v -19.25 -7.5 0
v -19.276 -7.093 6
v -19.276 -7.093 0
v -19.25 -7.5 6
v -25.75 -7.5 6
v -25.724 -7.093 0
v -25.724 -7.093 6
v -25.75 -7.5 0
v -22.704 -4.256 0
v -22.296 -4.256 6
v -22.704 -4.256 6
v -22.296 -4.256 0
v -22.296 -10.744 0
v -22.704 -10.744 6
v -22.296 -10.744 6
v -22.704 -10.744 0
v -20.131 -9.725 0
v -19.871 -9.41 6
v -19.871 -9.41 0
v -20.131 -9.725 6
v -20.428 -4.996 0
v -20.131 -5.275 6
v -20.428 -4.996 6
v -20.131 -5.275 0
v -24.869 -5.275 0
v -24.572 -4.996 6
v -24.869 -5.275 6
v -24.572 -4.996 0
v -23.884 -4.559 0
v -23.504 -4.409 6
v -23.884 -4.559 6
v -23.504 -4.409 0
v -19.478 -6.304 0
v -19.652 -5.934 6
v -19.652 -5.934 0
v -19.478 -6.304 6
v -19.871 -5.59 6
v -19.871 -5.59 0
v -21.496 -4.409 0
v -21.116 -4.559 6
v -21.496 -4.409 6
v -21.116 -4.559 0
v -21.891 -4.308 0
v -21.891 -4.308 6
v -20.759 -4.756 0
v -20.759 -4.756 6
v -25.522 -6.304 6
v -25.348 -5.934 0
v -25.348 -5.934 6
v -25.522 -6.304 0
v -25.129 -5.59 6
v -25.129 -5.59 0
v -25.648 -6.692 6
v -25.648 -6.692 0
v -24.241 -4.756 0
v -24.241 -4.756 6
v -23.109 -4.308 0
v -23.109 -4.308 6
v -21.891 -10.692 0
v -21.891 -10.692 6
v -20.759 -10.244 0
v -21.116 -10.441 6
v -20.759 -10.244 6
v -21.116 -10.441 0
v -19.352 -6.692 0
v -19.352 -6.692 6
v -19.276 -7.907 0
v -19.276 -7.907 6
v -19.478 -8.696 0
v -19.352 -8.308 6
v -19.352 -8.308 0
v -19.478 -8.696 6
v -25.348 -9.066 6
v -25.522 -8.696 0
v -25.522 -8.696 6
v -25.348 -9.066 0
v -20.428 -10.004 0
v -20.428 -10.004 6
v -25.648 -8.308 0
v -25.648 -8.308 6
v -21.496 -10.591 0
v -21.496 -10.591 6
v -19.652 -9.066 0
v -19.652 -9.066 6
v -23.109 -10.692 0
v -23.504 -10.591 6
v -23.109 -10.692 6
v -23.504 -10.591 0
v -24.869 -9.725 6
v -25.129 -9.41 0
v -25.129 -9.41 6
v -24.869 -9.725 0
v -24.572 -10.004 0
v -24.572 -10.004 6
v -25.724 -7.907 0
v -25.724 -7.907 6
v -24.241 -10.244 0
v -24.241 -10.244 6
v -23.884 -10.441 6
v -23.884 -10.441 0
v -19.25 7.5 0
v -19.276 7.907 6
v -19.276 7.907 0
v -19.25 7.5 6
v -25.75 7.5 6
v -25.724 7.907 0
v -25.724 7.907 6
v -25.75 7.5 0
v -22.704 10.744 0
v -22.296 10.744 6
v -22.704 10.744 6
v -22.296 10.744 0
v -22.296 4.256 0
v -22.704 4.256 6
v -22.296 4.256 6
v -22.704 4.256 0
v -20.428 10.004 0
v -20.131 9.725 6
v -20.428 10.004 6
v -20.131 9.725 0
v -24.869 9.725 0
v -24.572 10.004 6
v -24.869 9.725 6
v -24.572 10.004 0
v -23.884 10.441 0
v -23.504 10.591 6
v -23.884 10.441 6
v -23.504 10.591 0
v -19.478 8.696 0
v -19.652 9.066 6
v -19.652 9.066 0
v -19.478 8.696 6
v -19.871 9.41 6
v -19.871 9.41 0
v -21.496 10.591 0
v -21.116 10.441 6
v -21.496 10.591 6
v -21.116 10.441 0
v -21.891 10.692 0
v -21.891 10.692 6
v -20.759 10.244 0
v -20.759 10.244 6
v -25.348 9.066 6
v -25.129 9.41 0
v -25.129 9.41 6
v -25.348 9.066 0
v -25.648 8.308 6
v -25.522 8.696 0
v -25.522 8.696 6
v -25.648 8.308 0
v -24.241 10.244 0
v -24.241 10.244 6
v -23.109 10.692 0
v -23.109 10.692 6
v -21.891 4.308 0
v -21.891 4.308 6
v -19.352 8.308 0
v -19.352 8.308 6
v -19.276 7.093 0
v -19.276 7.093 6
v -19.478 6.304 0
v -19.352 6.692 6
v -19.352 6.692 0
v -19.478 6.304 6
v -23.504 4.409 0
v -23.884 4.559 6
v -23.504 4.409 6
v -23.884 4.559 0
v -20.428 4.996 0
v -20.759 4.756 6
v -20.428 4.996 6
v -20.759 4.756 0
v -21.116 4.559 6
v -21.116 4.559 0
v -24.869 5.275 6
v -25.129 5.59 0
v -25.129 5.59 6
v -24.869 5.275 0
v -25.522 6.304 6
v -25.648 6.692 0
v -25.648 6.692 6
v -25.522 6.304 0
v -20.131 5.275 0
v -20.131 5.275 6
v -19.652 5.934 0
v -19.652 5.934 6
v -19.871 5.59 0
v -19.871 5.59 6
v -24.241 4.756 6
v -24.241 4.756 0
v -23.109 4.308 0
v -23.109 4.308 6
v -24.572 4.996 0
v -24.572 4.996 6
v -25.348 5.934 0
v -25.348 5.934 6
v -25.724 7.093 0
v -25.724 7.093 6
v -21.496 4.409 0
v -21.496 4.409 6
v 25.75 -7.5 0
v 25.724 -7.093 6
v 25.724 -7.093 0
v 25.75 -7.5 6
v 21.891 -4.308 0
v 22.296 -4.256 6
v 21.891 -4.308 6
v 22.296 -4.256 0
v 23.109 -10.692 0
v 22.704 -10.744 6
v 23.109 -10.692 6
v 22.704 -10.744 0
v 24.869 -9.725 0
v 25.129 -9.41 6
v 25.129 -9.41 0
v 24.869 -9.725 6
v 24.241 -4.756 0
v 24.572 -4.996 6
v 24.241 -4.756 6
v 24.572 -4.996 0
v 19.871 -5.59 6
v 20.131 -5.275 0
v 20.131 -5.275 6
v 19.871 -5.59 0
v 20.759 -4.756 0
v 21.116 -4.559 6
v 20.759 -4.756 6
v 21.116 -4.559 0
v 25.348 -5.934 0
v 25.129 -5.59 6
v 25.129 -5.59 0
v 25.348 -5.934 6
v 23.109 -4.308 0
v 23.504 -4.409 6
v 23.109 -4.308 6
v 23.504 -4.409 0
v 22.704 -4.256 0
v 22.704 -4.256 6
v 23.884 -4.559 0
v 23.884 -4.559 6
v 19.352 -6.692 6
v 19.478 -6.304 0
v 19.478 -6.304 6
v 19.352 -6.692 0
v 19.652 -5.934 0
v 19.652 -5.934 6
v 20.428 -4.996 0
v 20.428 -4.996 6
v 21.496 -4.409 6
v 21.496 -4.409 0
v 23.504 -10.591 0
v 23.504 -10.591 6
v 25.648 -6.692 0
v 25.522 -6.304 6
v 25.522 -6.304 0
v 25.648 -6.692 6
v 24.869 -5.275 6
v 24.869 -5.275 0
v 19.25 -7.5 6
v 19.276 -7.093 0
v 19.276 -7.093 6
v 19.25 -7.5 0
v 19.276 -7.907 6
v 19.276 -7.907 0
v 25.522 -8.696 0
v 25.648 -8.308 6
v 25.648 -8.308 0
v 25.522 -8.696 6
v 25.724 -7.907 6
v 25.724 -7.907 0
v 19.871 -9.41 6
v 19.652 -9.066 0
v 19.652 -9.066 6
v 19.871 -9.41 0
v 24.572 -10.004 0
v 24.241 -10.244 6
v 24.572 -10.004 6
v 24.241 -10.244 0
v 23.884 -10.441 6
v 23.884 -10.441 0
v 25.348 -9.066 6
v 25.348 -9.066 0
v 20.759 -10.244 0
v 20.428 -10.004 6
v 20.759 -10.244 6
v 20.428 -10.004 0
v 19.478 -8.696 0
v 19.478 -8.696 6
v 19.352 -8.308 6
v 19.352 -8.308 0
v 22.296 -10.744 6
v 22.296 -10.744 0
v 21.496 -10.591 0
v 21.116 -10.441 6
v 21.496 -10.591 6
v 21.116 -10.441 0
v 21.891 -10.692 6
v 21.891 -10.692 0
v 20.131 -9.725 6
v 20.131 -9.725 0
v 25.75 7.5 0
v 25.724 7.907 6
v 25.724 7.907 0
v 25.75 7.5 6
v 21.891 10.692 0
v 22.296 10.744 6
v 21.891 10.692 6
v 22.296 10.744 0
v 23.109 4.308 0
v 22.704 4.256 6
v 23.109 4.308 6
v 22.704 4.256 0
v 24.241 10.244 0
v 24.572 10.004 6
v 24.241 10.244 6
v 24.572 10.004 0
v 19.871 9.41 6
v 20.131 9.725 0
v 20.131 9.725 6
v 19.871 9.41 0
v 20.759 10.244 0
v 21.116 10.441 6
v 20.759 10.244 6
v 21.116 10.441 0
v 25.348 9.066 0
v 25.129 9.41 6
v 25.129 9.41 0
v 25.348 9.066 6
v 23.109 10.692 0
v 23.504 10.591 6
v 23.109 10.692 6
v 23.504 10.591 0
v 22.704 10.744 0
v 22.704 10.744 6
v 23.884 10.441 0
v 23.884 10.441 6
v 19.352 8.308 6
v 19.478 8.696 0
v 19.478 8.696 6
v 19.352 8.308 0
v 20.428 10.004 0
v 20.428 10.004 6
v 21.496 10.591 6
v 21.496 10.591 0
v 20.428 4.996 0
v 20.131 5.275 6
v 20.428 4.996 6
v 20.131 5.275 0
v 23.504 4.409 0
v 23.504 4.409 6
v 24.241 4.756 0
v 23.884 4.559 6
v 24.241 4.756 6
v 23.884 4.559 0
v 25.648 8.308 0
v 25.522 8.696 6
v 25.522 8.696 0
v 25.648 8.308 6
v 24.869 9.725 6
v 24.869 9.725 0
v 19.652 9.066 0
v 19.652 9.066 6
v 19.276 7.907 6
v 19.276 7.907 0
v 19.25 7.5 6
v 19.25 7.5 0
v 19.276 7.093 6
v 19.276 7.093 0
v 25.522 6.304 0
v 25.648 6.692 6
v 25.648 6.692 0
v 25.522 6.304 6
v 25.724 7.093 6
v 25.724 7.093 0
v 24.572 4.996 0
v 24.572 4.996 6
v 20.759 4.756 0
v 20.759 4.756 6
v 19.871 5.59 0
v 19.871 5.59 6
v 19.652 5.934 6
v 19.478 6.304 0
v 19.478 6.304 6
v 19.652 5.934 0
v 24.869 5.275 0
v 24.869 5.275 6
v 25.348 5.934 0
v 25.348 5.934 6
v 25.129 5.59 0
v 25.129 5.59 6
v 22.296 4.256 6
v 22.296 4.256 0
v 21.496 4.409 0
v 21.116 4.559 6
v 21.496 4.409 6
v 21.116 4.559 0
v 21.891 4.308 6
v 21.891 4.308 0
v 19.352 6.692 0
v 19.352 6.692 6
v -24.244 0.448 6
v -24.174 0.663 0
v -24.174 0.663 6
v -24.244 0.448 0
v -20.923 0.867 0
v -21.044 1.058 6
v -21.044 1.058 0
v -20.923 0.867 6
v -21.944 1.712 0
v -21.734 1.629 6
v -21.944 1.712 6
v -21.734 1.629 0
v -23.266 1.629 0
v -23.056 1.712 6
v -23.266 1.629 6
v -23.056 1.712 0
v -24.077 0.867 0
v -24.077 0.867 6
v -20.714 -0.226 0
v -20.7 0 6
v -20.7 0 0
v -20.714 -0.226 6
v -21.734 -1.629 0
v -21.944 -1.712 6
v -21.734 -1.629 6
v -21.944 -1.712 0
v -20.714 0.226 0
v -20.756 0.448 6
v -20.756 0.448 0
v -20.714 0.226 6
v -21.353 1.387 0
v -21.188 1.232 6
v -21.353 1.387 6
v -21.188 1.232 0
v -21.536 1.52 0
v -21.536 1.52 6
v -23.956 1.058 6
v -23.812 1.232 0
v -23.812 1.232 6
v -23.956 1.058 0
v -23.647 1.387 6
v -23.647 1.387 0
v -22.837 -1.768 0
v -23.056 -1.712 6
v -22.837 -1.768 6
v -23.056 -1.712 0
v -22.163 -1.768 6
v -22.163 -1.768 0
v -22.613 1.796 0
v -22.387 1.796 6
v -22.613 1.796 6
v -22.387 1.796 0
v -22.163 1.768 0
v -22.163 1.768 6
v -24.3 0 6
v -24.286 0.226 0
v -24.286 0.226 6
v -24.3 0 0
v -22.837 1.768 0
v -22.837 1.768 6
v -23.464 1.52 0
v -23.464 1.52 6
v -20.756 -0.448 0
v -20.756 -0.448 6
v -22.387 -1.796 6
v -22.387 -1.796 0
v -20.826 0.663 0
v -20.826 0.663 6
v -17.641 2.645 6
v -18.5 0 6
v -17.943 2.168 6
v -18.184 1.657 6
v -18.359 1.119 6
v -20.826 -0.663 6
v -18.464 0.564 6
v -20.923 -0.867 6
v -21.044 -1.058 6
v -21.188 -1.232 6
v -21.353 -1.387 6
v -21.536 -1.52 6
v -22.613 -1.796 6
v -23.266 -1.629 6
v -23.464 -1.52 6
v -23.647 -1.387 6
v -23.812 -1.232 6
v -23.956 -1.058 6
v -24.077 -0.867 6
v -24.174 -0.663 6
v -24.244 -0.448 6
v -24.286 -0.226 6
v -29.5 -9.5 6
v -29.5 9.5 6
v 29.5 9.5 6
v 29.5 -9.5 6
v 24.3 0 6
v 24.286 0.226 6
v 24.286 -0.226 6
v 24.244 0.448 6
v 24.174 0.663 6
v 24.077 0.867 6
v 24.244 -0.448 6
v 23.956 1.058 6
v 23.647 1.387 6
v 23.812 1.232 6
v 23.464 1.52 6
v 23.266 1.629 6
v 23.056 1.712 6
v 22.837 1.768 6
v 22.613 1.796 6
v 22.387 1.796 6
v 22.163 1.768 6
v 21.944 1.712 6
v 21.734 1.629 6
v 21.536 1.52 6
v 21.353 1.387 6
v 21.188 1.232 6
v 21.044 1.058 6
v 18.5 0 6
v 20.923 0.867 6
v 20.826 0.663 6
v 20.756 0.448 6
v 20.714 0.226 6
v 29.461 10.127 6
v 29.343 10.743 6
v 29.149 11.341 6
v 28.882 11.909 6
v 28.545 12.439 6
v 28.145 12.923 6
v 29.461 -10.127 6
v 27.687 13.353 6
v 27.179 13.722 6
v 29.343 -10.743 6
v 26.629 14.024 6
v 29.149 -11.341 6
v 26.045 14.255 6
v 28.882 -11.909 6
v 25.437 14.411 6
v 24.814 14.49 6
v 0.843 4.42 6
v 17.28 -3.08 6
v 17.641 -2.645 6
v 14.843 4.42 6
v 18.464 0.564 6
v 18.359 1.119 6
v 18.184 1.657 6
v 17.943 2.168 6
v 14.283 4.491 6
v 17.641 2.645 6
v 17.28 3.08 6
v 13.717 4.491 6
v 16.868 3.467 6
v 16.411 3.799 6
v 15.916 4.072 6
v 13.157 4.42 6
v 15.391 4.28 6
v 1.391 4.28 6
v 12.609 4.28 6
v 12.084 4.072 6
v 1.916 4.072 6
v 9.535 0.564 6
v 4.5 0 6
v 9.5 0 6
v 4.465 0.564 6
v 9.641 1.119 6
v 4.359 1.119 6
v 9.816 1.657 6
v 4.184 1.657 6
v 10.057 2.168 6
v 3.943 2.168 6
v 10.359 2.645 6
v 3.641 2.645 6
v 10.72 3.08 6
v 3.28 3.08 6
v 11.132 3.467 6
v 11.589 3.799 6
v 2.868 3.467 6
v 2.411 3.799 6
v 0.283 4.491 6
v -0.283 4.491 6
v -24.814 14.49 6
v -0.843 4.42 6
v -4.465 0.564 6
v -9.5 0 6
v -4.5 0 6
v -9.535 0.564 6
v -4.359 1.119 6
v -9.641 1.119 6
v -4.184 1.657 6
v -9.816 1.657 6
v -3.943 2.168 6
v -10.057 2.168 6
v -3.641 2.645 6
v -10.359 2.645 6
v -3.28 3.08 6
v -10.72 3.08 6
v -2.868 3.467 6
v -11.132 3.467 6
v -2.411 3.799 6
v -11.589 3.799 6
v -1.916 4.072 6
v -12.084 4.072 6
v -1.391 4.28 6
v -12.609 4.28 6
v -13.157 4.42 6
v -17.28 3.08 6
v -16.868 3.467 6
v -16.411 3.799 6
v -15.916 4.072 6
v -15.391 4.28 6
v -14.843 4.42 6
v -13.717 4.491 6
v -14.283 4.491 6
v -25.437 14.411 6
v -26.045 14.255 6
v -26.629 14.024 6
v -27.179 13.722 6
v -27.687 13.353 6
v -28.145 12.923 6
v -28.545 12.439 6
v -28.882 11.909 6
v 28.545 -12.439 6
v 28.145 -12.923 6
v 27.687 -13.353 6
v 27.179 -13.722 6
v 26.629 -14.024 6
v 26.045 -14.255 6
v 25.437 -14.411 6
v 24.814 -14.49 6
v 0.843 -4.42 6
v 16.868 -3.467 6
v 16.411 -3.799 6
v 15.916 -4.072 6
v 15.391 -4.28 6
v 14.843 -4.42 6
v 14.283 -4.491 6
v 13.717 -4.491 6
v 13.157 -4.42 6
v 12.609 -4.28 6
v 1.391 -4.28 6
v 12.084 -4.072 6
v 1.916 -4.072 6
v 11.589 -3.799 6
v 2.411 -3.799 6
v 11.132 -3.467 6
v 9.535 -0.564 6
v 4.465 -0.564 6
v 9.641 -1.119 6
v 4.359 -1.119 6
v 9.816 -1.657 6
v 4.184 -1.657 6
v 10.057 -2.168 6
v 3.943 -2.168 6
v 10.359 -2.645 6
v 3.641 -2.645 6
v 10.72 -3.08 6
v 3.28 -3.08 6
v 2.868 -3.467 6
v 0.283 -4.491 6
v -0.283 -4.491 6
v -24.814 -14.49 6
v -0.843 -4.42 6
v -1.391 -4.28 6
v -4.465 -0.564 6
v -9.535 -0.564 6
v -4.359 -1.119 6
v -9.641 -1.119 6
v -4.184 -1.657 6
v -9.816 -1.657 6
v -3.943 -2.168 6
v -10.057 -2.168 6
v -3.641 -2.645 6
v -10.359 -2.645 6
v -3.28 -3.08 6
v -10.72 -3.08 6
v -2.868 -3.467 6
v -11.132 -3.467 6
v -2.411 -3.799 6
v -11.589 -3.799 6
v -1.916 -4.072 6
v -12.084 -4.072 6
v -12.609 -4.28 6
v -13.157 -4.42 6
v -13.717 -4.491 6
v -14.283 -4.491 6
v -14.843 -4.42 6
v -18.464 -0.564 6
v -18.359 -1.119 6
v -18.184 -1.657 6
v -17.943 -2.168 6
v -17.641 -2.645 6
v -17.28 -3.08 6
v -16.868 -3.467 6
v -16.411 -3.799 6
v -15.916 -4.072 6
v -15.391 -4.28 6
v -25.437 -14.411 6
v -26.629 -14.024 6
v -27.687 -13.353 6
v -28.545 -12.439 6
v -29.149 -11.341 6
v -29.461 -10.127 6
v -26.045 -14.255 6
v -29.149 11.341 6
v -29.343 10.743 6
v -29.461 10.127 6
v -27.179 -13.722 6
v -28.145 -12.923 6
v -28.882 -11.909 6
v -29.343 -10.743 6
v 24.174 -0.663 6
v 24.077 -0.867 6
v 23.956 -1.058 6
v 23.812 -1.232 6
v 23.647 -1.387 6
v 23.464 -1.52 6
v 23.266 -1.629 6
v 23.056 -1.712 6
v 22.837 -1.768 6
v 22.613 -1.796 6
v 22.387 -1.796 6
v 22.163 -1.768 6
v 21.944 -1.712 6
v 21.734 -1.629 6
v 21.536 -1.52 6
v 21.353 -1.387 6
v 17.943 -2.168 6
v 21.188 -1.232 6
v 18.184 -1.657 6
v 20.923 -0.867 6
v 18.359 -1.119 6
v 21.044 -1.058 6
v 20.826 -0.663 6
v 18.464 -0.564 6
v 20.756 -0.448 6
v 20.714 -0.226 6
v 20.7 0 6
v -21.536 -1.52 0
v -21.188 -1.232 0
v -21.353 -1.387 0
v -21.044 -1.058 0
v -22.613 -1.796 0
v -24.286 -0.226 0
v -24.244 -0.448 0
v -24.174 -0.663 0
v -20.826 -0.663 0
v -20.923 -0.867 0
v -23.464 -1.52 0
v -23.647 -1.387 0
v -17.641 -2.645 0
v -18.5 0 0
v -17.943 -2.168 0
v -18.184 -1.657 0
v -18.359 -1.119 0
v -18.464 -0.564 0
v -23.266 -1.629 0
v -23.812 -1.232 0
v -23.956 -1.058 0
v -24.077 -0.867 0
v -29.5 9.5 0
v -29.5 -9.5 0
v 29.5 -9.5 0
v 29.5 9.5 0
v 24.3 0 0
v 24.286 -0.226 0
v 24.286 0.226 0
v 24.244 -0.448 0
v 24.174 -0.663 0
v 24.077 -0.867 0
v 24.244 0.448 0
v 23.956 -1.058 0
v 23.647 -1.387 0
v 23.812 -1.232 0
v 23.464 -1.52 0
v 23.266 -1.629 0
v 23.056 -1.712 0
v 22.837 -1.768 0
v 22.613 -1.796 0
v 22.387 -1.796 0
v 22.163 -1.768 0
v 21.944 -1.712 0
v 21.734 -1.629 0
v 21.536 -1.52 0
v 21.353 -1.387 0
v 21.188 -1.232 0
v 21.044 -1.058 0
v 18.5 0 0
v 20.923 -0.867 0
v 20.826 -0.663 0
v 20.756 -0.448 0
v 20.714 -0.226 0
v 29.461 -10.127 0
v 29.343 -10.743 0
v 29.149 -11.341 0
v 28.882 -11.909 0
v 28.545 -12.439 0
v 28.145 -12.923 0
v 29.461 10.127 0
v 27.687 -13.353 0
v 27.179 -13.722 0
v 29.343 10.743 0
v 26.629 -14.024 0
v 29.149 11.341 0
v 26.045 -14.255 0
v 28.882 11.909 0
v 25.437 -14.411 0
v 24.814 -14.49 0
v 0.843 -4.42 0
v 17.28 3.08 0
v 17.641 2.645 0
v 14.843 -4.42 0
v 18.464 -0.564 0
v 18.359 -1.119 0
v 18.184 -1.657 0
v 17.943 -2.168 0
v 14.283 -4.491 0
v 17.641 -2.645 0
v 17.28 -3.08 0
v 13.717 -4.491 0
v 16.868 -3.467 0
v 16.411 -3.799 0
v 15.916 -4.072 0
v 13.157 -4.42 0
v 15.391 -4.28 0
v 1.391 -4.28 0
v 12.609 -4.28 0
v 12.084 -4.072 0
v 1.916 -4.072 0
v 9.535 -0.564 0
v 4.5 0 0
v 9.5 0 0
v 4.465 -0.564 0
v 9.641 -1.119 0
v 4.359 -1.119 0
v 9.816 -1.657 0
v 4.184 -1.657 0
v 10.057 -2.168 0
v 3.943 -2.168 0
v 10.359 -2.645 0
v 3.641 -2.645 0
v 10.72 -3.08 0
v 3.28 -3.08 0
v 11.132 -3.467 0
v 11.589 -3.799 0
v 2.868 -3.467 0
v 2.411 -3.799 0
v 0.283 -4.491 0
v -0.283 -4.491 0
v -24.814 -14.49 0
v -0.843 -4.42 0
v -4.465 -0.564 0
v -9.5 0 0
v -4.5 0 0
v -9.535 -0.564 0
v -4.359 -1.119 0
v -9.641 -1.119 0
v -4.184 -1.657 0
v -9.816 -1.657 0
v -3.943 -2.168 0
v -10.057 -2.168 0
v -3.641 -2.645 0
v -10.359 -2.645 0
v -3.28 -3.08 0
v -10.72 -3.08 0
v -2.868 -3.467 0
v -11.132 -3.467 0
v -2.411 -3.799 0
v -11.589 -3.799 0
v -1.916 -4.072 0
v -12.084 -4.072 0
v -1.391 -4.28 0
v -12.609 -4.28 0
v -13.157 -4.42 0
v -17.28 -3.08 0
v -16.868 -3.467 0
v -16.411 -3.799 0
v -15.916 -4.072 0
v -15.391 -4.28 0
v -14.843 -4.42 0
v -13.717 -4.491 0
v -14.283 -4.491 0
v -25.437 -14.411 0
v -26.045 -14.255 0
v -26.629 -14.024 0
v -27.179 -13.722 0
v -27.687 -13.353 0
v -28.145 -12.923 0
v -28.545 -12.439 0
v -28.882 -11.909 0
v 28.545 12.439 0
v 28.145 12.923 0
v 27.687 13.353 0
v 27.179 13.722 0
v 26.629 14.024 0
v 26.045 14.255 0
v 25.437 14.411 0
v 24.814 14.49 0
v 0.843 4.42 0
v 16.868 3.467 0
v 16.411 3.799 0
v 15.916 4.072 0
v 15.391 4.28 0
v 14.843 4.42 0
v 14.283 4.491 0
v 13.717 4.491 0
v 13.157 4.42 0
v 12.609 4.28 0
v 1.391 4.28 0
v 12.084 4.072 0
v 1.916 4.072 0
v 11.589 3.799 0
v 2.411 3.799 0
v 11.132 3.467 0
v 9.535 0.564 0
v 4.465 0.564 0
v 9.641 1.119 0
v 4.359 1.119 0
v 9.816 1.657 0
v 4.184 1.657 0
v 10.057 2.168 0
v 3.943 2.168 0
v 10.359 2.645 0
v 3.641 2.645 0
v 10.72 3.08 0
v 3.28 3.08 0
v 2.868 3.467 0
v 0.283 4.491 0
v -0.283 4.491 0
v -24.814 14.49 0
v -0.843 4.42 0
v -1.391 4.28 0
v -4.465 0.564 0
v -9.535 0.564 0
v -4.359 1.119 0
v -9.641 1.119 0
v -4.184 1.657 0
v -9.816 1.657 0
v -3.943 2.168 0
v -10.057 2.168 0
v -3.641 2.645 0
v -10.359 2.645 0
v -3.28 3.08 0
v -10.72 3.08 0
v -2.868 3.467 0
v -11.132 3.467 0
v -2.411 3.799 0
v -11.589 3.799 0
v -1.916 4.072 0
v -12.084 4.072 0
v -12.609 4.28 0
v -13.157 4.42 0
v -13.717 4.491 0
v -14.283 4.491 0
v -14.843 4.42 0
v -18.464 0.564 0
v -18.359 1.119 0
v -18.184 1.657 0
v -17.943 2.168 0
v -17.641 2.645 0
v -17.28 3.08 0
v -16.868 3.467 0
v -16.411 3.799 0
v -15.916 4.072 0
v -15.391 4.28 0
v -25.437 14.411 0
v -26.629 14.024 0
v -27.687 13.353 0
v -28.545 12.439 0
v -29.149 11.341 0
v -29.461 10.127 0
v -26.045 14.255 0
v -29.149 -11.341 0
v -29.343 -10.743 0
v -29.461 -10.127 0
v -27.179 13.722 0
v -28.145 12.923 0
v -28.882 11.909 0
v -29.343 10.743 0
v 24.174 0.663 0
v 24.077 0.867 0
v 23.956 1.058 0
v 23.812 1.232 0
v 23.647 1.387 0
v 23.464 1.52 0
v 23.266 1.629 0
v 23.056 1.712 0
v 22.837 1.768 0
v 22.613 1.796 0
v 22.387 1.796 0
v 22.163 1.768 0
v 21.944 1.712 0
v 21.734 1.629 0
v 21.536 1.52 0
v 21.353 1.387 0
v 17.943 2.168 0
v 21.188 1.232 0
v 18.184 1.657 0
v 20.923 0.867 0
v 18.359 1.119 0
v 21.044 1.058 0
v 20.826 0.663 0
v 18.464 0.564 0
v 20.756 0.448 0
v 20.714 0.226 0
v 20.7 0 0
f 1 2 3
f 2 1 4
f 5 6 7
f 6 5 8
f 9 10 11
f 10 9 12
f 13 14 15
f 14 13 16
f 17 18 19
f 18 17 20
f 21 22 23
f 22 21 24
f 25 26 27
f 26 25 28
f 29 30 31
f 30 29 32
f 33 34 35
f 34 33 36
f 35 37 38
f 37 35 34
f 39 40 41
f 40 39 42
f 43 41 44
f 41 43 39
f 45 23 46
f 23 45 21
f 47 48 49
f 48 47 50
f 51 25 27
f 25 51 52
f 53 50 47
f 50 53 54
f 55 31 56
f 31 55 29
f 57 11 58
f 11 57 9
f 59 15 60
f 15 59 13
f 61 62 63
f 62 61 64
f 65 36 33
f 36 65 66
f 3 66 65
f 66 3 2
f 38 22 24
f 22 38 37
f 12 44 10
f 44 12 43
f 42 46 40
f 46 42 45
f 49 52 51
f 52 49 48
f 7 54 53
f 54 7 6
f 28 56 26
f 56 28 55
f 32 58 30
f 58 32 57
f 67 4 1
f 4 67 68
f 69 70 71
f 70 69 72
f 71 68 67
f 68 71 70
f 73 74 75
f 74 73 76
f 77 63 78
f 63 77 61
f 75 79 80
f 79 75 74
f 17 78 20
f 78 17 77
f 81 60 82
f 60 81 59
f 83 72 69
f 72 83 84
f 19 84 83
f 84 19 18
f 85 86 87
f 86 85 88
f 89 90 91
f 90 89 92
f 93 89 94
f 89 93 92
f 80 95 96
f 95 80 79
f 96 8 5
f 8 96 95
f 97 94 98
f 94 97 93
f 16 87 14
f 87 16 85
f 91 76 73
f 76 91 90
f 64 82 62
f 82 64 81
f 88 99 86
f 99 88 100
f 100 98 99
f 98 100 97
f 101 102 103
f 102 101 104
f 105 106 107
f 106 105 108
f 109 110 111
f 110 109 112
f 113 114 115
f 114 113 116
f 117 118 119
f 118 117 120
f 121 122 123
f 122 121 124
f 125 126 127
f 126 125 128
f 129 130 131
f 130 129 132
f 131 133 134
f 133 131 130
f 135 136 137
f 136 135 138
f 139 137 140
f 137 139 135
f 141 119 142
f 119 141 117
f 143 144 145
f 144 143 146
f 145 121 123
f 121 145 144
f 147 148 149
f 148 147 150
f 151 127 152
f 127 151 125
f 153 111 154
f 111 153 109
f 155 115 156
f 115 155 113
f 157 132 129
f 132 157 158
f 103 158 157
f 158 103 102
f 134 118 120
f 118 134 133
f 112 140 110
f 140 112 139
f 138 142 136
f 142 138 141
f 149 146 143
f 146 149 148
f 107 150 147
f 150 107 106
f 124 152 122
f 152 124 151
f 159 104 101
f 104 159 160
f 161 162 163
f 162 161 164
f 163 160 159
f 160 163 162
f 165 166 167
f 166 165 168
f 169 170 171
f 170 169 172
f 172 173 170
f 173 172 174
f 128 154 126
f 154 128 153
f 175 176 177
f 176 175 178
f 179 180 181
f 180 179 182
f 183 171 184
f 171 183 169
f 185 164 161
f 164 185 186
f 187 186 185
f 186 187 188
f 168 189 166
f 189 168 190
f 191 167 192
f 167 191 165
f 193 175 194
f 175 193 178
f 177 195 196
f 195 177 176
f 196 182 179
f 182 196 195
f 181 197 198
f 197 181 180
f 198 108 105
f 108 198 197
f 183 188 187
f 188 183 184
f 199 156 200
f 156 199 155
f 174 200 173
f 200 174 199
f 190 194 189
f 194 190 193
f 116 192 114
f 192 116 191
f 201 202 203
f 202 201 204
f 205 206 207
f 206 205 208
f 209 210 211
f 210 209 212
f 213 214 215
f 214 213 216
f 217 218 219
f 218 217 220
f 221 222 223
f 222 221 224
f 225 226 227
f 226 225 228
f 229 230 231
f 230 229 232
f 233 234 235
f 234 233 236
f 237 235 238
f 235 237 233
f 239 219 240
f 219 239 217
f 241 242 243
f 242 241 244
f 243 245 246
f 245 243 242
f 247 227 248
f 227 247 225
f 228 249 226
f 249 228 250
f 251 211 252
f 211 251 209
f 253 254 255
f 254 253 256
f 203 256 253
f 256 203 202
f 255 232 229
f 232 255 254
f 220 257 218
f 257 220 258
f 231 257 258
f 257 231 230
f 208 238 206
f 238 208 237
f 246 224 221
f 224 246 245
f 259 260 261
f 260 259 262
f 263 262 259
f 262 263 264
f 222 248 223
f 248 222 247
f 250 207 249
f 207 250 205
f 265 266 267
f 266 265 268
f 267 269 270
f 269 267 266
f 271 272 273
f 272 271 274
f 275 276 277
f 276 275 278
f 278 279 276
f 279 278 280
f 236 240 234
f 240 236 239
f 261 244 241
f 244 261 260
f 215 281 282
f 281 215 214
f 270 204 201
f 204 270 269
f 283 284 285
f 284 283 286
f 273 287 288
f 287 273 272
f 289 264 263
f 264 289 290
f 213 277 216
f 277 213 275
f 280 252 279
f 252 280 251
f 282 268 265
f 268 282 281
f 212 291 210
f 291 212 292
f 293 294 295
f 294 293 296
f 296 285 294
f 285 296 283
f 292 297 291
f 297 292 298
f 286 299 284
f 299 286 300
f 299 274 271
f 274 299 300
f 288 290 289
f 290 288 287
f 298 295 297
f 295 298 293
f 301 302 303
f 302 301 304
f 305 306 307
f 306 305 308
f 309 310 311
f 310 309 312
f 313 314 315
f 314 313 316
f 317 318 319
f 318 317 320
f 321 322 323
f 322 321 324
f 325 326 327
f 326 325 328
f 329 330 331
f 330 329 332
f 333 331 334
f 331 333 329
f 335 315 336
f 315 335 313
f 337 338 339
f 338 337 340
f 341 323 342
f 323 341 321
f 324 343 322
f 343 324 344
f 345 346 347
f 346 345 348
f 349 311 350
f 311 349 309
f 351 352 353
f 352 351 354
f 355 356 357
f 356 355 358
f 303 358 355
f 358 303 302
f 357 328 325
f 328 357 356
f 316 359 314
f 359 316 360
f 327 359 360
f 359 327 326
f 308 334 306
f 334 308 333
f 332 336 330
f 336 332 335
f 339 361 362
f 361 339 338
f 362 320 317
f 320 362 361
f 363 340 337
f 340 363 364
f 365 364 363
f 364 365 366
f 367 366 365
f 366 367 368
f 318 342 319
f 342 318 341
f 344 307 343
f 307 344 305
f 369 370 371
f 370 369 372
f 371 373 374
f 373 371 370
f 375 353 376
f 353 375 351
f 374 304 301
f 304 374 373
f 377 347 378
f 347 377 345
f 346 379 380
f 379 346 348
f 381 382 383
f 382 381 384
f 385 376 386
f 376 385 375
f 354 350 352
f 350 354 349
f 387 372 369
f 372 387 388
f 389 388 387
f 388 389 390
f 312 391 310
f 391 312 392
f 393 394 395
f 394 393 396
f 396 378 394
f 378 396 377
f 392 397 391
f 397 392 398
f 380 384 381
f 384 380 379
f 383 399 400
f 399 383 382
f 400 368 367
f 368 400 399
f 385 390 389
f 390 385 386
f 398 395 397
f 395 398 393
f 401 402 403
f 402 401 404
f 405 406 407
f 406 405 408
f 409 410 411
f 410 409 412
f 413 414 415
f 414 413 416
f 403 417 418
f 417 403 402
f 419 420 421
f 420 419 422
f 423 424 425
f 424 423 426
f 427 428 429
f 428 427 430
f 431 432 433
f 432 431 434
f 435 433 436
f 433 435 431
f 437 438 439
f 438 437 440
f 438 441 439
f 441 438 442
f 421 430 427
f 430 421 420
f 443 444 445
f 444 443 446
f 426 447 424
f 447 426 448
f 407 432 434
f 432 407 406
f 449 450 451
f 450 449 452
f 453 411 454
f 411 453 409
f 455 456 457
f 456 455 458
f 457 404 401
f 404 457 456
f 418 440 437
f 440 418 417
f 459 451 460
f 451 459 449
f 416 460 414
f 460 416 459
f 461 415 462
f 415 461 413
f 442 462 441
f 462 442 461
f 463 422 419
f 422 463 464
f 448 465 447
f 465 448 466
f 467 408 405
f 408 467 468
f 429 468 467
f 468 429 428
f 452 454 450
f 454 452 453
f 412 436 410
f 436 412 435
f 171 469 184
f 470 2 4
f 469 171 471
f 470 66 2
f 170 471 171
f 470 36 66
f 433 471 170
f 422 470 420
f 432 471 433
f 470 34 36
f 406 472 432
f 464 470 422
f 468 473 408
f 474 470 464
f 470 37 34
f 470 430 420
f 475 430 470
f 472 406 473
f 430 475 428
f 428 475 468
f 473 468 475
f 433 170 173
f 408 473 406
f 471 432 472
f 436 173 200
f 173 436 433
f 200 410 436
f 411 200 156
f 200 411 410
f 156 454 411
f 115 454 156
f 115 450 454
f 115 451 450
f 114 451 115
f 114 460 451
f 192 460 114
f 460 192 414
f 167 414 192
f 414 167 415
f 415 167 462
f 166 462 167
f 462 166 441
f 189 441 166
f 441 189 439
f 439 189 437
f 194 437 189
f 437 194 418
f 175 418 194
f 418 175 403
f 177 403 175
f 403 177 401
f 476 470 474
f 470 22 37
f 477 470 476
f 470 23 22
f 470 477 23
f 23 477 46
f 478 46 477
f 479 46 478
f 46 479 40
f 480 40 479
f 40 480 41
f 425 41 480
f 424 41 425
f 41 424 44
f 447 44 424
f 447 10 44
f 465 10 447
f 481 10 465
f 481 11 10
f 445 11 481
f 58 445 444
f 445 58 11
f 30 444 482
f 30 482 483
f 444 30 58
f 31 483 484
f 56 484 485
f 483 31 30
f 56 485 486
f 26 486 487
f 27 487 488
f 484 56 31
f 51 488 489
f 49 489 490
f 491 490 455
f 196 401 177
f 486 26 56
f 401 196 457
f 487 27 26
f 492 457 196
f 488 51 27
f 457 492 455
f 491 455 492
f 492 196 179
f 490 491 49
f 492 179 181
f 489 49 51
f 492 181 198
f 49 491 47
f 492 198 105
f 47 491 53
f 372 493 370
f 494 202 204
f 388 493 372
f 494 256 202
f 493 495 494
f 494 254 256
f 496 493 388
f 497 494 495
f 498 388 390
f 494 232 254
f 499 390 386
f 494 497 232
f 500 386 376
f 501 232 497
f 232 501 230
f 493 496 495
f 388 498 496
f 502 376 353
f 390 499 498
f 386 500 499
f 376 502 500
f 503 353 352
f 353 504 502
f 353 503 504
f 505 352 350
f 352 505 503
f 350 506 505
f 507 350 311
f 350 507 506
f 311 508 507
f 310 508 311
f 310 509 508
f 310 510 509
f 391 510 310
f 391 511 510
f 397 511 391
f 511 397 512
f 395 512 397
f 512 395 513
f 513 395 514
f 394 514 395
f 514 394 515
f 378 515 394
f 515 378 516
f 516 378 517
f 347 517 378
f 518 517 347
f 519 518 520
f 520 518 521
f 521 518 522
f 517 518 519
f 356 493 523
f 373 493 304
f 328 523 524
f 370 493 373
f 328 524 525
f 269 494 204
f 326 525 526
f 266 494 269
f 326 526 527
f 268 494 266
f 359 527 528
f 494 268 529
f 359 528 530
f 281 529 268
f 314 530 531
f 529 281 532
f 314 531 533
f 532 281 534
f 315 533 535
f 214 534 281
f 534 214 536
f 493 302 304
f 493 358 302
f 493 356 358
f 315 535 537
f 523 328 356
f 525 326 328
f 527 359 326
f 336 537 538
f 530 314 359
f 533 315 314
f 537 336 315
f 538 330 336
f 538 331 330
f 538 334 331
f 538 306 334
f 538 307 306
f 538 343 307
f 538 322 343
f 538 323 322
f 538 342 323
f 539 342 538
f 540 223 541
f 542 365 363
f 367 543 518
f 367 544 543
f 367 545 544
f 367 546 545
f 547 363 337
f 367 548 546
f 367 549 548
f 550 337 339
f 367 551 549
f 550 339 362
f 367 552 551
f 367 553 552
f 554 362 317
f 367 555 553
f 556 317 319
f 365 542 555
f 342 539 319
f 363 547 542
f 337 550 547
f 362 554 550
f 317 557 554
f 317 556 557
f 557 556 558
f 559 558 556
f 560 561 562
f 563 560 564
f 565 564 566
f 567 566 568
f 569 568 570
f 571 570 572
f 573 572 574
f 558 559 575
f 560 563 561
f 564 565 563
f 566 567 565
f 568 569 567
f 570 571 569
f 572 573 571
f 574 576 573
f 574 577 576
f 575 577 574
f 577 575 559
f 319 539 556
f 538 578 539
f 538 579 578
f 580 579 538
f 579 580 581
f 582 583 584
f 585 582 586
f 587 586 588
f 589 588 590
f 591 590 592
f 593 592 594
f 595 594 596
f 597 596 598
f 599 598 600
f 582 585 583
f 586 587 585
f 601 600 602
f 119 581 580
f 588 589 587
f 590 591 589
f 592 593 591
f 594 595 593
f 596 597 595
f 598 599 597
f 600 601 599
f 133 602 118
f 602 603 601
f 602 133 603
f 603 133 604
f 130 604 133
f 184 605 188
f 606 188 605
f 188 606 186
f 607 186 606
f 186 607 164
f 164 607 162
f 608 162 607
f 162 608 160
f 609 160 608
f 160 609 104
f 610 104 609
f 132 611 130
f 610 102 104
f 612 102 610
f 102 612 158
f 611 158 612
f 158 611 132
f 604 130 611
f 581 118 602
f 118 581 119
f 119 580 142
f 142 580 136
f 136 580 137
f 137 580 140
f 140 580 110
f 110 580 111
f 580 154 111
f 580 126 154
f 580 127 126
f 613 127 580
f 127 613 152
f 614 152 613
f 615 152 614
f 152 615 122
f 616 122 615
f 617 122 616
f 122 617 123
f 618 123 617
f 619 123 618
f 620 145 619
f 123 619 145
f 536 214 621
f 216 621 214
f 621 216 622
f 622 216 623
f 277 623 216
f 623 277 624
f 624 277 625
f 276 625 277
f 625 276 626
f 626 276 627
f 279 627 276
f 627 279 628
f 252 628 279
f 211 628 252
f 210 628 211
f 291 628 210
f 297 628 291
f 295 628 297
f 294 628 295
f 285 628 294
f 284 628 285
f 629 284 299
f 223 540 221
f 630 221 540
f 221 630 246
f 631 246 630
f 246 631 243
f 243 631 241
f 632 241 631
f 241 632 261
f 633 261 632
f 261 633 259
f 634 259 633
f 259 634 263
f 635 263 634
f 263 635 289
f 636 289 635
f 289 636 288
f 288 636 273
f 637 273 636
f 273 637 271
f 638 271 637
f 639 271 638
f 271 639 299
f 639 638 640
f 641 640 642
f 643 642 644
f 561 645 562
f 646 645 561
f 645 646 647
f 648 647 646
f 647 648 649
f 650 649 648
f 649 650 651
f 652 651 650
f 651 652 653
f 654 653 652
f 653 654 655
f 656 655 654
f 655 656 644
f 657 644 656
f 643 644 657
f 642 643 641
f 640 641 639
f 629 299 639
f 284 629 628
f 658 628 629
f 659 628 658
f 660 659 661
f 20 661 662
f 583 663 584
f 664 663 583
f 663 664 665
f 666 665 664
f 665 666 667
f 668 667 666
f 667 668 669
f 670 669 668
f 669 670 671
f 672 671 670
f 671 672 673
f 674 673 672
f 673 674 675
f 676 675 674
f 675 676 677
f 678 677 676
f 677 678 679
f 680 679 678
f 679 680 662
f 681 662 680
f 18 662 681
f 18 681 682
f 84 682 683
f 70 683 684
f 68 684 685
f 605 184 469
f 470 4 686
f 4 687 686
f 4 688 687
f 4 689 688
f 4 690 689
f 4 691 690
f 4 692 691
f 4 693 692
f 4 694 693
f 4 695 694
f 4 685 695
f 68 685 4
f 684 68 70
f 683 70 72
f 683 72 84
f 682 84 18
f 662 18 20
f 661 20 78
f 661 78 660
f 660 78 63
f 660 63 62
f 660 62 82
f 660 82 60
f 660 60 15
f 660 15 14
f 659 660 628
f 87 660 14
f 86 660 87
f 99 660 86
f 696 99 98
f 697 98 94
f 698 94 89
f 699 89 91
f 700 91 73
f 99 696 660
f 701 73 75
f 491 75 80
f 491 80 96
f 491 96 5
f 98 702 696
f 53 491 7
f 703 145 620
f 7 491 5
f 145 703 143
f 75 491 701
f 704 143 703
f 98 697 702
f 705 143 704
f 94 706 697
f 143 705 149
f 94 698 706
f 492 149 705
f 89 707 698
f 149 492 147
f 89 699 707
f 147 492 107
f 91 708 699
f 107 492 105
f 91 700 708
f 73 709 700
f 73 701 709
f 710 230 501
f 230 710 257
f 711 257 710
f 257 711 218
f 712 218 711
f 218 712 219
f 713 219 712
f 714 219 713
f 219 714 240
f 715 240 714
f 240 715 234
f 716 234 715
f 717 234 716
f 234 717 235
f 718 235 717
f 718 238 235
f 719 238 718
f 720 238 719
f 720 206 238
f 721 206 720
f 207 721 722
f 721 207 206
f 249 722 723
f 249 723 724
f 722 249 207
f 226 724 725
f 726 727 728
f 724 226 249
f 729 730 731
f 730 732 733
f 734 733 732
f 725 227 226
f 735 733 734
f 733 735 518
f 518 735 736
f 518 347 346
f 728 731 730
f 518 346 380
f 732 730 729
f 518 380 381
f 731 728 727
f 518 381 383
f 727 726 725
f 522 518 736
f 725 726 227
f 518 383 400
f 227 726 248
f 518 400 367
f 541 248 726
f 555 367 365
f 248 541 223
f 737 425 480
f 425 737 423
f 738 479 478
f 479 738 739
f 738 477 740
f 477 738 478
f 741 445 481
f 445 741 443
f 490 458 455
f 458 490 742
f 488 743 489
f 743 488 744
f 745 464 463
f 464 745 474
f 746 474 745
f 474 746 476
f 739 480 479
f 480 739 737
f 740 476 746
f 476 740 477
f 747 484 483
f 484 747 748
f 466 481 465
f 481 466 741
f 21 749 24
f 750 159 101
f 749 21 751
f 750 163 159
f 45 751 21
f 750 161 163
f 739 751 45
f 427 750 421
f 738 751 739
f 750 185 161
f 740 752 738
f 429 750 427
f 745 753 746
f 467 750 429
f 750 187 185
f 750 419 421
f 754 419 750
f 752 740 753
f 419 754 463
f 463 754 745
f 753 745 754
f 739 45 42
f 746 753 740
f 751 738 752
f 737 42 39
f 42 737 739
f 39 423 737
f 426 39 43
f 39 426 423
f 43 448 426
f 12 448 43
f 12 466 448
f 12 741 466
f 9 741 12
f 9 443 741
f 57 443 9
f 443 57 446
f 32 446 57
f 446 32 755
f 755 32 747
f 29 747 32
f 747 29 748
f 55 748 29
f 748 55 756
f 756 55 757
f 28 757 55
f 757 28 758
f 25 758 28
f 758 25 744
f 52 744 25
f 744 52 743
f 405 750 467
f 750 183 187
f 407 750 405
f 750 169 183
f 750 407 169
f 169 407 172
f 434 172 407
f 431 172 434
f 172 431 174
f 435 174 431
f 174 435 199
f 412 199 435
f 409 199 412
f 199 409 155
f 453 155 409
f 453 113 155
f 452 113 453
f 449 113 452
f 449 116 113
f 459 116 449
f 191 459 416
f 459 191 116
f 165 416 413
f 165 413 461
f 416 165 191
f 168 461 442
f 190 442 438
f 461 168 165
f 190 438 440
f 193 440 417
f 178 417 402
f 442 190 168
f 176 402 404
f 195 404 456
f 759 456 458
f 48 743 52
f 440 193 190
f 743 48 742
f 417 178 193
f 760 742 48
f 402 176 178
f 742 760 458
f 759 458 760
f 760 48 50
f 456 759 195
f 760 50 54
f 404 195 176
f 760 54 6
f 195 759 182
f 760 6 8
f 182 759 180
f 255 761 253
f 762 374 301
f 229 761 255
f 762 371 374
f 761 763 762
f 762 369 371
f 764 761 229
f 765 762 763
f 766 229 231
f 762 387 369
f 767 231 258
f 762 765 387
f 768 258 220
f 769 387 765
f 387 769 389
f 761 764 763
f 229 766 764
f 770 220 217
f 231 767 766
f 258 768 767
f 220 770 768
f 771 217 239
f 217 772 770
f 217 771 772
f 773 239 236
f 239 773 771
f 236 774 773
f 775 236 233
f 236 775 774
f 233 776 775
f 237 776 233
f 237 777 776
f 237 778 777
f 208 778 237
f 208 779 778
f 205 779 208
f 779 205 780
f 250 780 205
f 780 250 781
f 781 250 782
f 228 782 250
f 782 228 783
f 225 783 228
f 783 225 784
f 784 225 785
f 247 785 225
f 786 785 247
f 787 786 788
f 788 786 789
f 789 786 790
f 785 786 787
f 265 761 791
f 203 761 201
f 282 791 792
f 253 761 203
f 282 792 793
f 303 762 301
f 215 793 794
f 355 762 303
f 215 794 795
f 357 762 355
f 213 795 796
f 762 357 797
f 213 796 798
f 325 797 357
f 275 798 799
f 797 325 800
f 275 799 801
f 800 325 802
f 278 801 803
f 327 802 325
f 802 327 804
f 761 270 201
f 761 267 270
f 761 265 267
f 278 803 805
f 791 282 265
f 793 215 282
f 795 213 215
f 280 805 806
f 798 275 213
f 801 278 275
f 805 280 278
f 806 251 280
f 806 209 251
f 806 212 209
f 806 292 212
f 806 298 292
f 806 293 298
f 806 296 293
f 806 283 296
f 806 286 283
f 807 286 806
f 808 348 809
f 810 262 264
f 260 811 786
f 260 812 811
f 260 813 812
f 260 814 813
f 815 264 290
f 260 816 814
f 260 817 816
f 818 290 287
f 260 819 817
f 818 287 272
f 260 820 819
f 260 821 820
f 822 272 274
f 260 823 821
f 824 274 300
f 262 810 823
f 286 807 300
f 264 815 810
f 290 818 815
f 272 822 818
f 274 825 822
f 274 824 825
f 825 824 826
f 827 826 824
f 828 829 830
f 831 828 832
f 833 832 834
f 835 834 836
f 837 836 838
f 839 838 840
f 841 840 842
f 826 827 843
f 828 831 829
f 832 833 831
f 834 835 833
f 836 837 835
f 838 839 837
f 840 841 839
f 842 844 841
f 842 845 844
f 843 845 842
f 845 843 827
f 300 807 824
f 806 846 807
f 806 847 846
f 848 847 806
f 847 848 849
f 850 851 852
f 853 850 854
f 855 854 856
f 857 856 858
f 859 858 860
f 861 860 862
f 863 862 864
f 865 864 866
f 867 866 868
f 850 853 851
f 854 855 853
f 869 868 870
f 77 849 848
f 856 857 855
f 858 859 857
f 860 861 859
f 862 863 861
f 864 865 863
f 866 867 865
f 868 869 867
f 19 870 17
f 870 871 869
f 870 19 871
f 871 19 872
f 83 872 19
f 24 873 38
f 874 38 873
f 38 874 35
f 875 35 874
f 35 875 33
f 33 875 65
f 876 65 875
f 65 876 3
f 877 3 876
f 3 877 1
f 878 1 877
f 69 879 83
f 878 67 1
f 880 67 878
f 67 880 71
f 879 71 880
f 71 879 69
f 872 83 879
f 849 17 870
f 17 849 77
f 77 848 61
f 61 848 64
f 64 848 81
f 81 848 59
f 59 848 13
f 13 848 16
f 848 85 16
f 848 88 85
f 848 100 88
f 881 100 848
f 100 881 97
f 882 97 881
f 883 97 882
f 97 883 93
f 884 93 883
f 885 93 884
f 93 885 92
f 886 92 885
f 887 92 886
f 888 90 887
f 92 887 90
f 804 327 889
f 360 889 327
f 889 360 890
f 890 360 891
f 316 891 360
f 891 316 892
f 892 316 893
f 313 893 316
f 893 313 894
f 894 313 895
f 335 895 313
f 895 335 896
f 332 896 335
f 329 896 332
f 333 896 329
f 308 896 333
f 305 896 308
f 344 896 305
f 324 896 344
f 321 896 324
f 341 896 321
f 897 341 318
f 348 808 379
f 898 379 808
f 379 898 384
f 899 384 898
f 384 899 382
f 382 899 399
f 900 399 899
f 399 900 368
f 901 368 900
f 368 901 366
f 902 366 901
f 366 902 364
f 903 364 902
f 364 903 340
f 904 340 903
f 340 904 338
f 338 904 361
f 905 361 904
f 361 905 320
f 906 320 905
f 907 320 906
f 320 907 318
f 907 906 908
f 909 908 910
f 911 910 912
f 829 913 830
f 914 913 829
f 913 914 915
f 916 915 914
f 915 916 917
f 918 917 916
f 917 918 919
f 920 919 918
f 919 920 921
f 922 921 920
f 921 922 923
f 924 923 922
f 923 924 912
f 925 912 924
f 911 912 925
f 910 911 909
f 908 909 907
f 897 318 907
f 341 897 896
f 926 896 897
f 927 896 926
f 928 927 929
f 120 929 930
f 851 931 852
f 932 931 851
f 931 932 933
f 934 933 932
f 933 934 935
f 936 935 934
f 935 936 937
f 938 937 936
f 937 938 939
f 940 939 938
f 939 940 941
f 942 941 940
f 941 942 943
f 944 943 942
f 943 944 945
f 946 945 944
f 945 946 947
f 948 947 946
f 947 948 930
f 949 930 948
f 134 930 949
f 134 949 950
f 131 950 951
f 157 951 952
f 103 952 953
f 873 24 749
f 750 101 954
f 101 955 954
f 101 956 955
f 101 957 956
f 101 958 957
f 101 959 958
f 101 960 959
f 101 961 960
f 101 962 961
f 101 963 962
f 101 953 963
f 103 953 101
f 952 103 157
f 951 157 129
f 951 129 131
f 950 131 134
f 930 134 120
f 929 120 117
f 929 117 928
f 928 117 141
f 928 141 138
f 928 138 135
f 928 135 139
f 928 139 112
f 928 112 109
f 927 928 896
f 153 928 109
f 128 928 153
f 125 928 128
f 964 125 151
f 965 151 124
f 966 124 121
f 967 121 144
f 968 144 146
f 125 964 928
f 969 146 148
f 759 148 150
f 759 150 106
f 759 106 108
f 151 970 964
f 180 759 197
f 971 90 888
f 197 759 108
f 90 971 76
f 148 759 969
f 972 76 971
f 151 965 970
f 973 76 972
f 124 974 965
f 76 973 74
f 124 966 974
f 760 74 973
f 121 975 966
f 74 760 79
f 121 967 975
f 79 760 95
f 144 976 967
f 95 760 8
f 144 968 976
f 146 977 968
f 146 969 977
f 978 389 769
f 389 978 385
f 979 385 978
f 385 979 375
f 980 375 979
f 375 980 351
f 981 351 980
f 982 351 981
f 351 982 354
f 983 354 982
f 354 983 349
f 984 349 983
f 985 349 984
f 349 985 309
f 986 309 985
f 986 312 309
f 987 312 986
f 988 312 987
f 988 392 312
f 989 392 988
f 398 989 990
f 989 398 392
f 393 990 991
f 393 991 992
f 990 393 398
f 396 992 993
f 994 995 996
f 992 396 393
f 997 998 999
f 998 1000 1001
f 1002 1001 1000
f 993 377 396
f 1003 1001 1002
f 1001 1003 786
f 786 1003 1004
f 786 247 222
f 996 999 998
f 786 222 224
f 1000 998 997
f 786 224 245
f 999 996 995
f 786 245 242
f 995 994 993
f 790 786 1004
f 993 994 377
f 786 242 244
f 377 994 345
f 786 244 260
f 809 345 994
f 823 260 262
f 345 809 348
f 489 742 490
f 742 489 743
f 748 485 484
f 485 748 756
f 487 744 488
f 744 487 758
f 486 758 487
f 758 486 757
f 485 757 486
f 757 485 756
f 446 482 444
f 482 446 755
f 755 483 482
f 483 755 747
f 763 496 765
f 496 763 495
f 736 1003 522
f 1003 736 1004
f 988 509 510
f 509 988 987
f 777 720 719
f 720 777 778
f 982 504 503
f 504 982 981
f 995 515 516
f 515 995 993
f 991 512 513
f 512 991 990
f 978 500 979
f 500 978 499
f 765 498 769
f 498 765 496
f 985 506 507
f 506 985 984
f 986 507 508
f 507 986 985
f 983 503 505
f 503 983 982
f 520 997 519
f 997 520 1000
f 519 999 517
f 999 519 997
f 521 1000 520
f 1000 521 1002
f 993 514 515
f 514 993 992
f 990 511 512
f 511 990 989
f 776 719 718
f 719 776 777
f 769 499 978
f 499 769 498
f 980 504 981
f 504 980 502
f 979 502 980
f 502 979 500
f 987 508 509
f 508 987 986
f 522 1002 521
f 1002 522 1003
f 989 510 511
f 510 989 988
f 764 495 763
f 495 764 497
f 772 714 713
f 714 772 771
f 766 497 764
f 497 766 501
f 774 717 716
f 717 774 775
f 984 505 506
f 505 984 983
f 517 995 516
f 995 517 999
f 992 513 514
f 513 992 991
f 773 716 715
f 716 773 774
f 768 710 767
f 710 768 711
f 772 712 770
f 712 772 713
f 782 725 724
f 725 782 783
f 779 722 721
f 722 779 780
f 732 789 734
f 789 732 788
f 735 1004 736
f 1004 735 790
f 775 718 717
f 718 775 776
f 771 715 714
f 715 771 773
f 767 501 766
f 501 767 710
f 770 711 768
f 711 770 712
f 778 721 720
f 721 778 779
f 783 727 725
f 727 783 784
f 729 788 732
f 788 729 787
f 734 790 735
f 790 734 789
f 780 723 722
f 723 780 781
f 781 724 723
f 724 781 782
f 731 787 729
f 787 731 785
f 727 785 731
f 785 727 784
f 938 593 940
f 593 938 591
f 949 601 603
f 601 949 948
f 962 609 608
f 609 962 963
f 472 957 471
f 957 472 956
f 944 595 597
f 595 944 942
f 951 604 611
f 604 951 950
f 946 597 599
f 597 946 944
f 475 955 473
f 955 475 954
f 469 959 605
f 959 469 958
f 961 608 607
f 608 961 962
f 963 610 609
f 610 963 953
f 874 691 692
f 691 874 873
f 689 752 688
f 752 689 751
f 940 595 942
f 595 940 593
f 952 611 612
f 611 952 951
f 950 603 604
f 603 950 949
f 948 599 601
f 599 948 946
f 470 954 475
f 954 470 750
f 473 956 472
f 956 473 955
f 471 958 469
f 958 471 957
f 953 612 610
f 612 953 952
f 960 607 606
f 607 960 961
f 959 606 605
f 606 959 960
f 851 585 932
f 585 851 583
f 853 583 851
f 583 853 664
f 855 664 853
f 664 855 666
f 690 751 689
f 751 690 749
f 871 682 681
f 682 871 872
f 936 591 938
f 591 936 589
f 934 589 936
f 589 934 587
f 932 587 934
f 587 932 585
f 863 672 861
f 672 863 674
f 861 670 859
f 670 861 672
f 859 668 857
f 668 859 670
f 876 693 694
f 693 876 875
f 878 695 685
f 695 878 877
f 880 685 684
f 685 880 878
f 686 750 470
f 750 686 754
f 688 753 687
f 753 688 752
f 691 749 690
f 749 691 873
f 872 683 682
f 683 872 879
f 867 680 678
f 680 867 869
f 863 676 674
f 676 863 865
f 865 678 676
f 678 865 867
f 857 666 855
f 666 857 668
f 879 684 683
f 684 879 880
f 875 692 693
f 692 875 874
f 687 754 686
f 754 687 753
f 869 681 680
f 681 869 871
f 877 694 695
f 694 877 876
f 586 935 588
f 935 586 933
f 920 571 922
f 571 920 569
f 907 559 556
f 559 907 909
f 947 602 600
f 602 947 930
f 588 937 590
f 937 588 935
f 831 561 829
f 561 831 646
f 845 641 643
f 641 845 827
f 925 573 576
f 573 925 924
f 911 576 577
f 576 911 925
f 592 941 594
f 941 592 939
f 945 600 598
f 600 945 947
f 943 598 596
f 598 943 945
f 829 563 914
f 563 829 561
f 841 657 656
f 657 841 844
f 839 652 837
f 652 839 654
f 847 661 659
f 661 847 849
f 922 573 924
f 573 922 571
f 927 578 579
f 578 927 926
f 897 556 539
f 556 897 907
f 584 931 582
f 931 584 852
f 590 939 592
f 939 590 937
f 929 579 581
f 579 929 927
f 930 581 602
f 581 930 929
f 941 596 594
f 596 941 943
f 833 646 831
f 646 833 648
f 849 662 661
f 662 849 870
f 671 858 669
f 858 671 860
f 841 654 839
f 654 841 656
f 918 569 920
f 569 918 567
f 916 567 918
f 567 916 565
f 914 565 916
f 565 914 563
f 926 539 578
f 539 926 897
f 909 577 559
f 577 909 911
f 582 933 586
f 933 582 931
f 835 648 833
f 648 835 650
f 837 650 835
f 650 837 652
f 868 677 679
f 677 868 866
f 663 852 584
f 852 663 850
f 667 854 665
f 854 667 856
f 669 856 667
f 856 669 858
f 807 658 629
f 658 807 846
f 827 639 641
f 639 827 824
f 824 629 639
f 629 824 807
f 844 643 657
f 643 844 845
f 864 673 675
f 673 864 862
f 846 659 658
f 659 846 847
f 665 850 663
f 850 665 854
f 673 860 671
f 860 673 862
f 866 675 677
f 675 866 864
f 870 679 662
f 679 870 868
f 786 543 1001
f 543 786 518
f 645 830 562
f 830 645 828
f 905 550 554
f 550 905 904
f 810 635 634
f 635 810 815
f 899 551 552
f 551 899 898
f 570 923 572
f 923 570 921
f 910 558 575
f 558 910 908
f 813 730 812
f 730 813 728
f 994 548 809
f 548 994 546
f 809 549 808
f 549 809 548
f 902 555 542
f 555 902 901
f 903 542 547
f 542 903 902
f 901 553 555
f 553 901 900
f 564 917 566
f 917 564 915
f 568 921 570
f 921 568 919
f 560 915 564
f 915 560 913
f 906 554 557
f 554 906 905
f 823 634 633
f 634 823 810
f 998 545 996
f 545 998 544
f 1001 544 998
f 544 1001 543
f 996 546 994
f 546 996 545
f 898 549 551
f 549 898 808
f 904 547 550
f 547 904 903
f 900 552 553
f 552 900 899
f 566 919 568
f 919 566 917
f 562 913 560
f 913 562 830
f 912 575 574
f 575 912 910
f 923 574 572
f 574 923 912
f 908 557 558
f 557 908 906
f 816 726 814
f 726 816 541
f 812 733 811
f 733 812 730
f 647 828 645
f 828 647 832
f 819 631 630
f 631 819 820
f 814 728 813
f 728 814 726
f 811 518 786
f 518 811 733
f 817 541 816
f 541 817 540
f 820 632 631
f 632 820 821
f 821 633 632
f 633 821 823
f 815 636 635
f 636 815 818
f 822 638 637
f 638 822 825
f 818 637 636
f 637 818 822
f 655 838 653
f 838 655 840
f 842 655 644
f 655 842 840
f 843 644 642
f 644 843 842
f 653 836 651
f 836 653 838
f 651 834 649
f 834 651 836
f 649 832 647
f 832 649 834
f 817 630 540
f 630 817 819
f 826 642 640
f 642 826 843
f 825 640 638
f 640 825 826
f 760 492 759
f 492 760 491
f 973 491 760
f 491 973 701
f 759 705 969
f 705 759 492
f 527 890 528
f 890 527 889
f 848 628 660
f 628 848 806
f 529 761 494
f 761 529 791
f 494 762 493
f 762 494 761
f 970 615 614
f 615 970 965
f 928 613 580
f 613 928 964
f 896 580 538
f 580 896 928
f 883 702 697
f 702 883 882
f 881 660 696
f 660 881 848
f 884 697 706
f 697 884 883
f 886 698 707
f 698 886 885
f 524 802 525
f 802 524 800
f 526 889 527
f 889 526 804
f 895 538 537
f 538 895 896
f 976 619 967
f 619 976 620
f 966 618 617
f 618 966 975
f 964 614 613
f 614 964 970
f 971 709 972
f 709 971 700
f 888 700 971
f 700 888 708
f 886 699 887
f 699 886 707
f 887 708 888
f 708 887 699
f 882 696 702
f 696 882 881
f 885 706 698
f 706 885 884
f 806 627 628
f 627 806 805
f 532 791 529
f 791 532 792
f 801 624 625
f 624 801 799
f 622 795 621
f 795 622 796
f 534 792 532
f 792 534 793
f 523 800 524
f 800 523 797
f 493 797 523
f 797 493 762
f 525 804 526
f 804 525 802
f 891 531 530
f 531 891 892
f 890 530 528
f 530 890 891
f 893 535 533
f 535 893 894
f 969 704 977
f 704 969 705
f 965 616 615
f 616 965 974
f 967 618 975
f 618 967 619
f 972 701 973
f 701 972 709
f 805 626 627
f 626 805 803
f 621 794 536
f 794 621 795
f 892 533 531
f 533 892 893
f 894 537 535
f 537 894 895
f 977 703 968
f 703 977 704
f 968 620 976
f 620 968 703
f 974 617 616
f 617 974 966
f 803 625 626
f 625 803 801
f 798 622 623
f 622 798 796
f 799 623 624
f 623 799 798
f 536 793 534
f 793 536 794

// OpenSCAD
$fn = 50;


difference() {
	union() {
		hull() {
			translate(v = [-24.5000000000, 9.5000000000, 0]) {
				cylinder(h = 6, r = 5);
			}
			translate(v = [24.5000000000, 9.5000000000, 0]) {
				cylinder(h = 6, r = 5);
			}
			translate(v = [-24.5000000000, -9.5000000000, 0]) {
				cylinder(h = 6, r = 5);
			}
			translate(v = [24.5000000000, -9.5000000000, 0]) {
				cylinder(h = 6, r = 5);
			}
		}
	}
	union() {
		#translate(v = [-22.5000000000, -7.5000000000, 0]) {
			cylinder(h = 6, r = 3.2500000000);
		}
		#translate(v = [-22.5000000000, 7.5000000000, 0]) {
			cylinder(h = 6, r = 3.2500000000);
		}
		#translate(v = [22.5000000000, -7.5000000000, 0]) {
			cylinder(h = 6, r = 3.2500000000);
		}
		#translate(v = [22.5000000000, 7.5000000000, 0]) {
			cylinder(h = 6, r = 3.2500000000);
		}
		#translate(v = [-22.5000000000, -7.5000000000, -100.0000000000]) {
			cylinder(h = 200, r = 3.2500000000);
		}
		#translate(v = [-22.5000000000, 7.5000000000, -100.0000000000]) {
			cylinder(h = 200, r = 3.2500000000);
		}
		#translate(v = [22.5000000000, -7.5000000000, -100.0000000000]) {
			cylinder(h = 200, r = 3.2500000000);
		}
		#translate(v = [22.5000000000, 7.5000000000, -100.0000000000]) {
			cylinder(h = 200, r = 3.2500000000);
		}
		#translate(v = [-22.5000000000, -7.5000000000, 0]) {
			cylinder(h = 6, r = 1.8000000000);
		}
		#translate(v = [-22.5000000000, 0.0000000000, 0]) {
			cylinder(h = 6, r = 1.8000000000);
		}
		#translate(v = [-22.5000000000, 7.5000000000, 0]) {
			cylinder(h = 6, r = 1.8000000000);
		}
		#translate(v = [22.5000000000, -7.5000000000, 0]) {
			cylinder(h = 6, r = 1.8000000000);
		}
		#translate(v = [22.5000000000, 0.0000000000, 0]) {
			cylinder(h = 6, r = 1.8000000000);
		}
		#translate(v = [22.5000000000, 7.5000000000, 0]) {
			cylinder(h = 6, r = 1.8000000000);
		}
		#translate(v = [-22.5000000000, -7.5000000000, 0]) {
			cylinder(h = 6, r = 1.8000000000);
		}
		#translate(v = [-22.5000000000, 0.0000000000, 0]) {
			cylinder(h = 6, r = 1.8000000000);
		}
		#translate(v = [-22.5000000000, 7.5000000000, 0]) {
			cylinder(h = 6, r = 1.8000000000);
		}
		#translate(v = [22.5000000000, -7.5000000000, 0]) {
			cylinder(h = 6, r = 1.8000000000);
		}
		#translate(v = [22.5000000000, 0.0000000000, 0]) {
			cylinder(h = 6, r = 1.8000000000);
		}
		#translate(v = [22.5000000000, 7.5000000000, 0]) {
			cylinder(h = 6, r = 1.8000000000);
		}
		#translate(v = [-22.5000000000, -7.5000000000, 0]) {
			cylinder(h = 6, r = 1.8000000000);
		}
		#translate(v = [-22.5000000000, 0.0000000000, 0]) {
			cylinder(h = 6, r = 1.8000000000);
		}
		#translate(v = [-22.5000000000, 7.5000000000, 0]) {
			cylinder(h = 6, r = 1.8000000000);
		}
		#translate(v = [22.5000000000, -7.5000000000, 0]) {
			cylinder(h = 6, r = 1.8000000000);
		}
		#translate(v = [22.5000000000, 0.0000000000, 0]) {
			cylinder(h = 6, r = 1.8000000000);
		}
		#translate(v = [22.5000000000, 7.5000000000, 0]) {
			cylinder(h = 6, r = 1.8000000000);
		}
		#translate(v = [-14.0000000000, 0, 0]) {
			cylinder(h = 6, r = 4.5000000000);
		}
		#cylinder(h = 6, r = 4.5000000000);
		#translate(v = [14.0000000000, 0, 0]) {
			cylinder(h = 6, r = 4.5000000000);
		}
	}
}
